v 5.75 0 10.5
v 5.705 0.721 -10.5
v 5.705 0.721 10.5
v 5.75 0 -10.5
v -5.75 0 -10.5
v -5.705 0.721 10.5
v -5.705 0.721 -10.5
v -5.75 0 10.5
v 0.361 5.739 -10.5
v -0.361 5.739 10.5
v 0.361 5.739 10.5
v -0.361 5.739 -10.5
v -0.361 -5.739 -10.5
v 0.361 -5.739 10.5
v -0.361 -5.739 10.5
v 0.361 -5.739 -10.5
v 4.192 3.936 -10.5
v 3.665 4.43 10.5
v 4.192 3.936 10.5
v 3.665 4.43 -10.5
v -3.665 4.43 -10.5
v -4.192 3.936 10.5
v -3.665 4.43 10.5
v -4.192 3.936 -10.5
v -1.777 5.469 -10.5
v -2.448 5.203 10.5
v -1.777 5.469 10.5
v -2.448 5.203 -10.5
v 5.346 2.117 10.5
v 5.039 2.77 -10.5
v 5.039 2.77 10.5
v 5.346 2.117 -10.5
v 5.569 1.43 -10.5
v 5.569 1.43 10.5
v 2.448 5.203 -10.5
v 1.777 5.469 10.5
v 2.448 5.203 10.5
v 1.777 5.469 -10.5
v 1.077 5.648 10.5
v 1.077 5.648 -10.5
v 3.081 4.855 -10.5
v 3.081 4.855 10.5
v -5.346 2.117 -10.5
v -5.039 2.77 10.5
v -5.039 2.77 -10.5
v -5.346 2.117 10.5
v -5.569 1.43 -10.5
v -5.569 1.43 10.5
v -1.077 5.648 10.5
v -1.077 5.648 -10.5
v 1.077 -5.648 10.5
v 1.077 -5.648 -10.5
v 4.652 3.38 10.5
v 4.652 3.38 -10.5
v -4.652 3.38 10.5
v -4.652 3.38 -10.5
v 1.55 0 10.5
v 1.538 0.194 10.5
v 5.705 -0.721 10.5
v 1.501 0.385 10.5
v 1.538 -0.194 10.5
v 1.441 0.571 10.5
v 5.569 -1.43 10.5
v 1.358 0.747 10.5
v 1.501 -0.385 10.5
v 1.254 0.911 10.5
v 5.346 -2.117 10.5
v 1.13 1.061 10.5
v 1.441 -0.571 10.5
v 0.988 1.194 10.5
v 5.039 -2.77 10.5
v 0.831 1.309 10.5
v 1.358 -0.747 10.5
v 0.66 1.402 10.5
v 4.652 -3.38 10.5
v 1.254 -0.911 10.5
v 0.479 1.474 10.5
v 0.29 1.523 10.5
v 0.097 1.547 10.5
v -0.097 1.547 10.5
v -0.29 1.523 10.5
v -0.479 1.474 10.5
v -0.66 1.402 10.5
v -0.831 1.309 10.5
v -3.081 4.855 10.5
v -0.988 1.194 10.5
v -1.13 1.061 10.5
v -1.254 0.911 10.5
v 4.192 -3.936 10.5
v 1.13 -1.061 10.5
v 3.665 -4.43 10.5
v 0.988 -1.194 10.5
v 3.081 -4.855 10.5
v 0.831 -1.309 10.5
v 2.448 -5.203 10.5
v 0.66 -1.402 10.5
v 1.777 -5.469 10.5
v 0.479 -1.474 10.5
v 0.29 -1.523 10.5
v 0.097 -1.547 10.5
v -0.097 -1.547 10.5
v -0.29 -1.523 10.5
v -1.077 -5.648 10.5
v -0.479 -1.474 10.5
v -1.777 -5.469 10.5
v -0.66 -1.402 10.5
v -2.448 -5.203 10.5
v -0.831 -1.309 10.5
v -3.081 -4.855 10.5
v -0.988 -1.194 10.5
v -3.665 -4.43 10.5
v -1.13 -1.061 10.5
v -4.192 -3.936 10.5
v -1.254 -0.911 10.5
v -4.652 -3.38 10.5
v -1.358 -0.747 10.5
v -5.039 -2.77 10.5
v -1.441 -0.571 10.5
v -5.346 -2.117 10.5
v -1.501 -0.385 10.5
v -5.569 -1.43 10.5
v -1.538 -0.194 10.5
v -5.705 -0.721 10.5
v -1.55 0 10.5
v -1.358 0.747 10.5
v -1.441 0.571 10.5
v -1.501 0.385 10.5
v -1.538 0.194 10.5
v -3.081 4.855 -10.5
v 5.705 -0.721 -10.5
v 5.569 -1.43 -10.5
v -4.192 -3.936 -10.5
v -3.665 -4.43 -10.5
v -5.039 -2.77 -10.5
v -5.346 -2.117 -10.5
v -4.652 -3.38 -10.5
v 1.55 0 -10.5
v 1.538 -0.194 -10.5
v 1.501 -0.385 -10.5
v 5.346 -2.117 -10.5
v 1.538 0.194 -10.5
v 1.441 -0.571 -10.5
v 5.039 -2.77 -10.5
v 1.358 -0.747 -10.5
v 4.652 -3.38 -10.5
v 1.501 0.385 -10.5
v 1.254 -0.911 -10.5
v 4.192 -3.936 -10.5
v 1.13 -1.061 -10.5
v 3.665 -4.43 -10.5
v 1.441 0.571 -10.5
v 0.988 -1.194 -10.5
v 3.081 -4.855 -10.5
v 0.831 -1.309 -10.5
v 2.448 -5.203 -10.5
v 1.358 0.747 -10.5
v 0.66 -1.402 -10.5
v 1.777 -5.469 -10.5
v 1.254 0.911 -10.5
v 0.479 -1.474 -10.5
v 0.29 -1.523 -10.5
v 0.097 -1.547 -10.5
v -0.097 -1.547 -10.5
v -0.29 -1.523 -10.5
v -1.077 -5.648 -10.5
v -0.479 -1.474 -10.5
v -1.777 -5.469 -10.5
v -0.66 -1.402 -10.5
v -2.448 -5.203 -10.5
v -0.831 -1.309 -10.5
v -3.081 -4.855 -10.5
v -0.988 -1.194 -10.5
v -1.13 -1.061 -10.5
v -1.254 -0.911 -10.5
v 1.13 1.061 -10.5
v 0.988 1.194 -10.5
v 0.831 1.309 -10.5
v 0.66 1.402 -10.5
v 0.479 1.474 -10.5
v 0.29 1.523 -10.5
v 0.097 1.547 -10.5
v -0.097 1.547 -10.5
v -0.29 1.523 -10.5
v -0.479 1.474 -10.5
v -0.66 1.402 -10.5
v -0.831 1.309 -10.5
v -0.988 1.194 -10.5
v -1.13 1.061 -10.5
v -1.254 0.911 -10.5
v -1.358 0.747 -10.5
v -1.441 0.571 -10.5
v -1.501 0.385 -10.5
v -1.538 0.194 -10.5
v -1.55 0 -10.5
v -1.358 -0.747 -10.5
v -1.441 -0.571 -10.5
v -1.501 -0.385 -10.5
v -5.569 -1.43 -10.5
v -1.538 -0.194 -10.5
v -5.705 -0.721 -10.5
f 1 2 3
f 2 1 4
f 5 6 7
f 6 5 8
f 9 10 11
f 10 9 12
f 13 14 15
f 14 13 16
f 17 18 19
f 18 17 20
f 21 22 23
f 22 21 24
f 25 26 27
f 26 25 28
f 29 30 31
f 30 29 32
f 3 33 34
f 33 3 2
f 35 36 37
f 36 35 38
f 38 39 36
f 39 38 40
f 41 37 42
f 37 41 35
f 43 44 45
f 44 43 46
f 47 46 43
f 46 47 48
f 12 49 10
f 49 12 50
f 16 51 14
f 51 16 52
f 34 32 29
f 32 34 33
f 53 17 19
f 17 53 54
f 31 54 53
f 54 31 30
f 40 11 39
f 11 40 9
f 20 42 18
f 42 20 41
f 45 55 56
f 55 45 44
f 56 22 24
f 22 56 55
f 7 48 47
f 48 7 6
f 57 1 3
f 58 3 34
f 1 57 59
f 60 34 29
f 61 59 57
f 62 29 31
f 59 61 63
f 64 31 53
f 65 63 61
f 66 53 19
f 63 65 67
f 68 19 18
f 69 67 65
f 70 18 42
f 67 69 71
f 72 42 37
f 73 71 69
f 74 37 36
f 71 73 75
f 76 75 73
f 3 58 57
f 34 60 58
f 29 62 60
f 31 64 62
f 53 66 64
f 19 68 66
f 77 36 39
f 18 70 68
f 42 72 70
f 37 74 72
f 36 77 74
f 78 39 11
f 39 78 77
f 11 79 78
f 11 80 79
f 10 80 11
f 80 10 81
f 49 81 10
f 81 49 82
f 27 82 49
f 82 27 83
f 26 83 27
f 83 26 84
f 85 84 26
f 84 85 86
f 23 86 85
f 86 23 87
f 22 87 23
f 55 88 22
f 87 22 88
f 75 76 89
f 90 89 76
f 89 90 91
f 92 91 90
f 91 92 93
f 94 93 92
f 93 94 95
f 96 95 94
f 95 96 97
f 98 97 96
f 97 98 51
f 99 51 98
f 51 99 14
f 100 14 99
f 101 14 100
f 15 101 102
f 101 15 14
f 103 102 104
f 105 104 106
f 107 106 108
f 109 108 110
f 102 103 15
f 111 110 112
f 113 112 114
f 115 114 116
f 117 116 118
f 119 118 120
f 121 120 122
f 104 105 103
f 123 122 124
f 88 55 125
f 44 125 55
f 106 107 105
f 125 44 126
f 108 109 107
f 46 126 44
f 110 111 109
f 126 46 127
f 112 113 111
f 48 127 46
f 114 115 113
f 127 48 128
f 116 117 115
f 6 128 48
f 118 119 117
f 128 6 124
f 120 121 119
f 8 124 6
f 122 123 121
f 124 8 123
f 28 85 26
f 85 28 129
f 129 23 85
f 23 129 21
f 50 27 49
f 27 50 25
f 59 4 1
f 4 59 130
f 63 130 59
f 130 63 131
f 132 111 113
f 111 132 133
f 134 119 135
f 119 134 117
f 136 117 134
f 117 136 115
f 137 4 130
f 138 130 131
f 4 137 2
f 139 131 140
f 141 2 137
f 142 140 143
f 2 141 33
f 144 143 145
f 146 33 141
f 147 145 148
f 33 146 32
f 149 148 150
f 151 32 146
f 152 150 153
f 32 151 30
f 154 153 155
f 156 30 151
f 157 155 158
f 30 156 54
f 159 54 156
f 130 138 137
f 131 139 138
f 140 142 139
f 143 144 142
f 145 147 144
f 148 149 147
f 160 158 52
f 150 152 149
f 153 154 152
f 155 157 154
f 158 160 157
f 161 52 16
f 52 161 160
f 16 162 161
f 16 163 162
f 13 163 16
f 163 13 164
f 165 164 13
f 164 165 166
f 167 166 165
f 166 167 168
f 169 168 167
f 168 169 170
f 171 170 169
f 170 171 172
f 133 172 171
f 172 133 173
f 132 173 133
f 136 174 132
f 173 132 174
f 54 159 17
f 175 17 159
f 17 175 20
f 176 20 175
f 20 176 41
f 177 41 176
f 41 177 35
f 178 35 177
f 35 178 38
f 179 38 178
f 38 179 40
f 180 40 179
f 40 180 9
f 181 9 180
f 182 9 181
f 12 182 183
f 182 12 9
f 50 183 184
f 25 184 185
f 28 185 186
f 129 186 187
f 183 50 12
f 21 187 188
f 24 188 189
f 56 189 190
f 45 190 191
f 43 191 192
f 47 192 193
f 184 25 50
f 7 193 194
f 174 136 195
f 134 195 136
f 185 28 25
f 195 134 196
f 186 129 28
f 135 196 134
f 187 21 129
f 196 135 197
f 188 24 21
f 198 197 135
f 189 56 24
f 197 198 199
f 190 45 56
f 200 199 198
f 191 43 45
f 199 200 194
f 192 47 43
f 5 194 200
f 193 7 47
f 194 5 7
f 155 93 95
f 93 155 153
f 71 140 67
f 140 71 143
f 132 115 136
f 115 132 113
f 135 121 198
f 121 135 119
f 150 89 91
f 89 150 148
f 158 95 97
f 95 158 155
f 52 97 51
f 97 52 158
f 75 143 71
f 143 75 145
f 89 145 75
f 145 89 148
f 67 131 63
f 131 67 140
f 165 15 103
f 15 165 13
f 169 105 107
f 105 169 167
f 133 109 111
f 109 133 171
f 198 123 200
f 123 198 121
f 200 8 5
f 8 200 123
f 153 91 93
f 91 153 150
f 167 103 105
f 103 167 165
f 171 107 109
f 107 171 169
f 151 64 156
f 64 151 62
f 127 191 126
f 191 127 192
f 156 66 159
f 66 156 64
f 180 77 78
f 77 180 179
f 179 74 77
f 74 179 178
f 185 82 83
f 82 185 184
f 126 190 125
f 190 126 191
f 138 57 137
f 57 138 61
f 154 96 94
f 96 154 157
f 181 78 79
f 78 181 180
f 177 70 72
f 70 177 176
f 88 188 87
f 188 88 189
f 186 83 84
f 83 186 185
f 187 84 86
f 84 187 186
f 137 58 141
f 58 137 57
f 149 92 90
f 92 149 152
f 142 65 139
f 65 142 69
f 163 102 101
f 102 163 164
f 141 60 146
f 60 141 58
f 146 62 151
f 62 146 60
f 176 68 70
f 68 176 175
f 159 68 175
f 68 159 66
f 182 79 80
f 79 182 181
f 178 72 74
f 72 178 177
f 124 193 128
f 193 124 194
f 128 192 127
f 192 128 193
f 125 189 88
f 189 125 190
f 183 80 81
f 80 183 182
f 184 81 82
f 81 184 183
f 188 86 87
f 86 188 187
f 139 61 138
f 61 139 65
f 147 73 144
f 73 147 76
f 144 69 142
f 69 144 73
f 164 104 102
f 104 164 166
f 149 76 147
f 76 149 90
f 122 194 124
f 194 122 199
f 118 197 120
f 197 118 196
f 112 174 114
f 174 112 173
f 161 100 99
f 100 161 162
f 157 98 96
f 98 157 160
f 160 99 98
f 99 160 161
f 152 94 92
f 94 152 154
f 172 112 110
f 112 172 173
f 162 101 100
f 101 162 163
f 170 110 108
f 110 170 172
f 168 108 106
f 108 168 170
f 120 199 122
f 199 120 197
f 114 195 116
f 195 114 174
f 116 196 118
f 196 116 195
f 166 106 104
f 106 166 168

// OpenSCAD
$fn = 50;


difference() {
	union() {
		translate(v = [0, 0, -10.5000000000]) {
			cylinder(h = 21, r = 5.7500000000);
		}
	}
	union() {
		translate(v = [0, 0, -100.0000000000]) {
			cylinder(h = 200, r = 1.5500000000);
		}
	}
}
